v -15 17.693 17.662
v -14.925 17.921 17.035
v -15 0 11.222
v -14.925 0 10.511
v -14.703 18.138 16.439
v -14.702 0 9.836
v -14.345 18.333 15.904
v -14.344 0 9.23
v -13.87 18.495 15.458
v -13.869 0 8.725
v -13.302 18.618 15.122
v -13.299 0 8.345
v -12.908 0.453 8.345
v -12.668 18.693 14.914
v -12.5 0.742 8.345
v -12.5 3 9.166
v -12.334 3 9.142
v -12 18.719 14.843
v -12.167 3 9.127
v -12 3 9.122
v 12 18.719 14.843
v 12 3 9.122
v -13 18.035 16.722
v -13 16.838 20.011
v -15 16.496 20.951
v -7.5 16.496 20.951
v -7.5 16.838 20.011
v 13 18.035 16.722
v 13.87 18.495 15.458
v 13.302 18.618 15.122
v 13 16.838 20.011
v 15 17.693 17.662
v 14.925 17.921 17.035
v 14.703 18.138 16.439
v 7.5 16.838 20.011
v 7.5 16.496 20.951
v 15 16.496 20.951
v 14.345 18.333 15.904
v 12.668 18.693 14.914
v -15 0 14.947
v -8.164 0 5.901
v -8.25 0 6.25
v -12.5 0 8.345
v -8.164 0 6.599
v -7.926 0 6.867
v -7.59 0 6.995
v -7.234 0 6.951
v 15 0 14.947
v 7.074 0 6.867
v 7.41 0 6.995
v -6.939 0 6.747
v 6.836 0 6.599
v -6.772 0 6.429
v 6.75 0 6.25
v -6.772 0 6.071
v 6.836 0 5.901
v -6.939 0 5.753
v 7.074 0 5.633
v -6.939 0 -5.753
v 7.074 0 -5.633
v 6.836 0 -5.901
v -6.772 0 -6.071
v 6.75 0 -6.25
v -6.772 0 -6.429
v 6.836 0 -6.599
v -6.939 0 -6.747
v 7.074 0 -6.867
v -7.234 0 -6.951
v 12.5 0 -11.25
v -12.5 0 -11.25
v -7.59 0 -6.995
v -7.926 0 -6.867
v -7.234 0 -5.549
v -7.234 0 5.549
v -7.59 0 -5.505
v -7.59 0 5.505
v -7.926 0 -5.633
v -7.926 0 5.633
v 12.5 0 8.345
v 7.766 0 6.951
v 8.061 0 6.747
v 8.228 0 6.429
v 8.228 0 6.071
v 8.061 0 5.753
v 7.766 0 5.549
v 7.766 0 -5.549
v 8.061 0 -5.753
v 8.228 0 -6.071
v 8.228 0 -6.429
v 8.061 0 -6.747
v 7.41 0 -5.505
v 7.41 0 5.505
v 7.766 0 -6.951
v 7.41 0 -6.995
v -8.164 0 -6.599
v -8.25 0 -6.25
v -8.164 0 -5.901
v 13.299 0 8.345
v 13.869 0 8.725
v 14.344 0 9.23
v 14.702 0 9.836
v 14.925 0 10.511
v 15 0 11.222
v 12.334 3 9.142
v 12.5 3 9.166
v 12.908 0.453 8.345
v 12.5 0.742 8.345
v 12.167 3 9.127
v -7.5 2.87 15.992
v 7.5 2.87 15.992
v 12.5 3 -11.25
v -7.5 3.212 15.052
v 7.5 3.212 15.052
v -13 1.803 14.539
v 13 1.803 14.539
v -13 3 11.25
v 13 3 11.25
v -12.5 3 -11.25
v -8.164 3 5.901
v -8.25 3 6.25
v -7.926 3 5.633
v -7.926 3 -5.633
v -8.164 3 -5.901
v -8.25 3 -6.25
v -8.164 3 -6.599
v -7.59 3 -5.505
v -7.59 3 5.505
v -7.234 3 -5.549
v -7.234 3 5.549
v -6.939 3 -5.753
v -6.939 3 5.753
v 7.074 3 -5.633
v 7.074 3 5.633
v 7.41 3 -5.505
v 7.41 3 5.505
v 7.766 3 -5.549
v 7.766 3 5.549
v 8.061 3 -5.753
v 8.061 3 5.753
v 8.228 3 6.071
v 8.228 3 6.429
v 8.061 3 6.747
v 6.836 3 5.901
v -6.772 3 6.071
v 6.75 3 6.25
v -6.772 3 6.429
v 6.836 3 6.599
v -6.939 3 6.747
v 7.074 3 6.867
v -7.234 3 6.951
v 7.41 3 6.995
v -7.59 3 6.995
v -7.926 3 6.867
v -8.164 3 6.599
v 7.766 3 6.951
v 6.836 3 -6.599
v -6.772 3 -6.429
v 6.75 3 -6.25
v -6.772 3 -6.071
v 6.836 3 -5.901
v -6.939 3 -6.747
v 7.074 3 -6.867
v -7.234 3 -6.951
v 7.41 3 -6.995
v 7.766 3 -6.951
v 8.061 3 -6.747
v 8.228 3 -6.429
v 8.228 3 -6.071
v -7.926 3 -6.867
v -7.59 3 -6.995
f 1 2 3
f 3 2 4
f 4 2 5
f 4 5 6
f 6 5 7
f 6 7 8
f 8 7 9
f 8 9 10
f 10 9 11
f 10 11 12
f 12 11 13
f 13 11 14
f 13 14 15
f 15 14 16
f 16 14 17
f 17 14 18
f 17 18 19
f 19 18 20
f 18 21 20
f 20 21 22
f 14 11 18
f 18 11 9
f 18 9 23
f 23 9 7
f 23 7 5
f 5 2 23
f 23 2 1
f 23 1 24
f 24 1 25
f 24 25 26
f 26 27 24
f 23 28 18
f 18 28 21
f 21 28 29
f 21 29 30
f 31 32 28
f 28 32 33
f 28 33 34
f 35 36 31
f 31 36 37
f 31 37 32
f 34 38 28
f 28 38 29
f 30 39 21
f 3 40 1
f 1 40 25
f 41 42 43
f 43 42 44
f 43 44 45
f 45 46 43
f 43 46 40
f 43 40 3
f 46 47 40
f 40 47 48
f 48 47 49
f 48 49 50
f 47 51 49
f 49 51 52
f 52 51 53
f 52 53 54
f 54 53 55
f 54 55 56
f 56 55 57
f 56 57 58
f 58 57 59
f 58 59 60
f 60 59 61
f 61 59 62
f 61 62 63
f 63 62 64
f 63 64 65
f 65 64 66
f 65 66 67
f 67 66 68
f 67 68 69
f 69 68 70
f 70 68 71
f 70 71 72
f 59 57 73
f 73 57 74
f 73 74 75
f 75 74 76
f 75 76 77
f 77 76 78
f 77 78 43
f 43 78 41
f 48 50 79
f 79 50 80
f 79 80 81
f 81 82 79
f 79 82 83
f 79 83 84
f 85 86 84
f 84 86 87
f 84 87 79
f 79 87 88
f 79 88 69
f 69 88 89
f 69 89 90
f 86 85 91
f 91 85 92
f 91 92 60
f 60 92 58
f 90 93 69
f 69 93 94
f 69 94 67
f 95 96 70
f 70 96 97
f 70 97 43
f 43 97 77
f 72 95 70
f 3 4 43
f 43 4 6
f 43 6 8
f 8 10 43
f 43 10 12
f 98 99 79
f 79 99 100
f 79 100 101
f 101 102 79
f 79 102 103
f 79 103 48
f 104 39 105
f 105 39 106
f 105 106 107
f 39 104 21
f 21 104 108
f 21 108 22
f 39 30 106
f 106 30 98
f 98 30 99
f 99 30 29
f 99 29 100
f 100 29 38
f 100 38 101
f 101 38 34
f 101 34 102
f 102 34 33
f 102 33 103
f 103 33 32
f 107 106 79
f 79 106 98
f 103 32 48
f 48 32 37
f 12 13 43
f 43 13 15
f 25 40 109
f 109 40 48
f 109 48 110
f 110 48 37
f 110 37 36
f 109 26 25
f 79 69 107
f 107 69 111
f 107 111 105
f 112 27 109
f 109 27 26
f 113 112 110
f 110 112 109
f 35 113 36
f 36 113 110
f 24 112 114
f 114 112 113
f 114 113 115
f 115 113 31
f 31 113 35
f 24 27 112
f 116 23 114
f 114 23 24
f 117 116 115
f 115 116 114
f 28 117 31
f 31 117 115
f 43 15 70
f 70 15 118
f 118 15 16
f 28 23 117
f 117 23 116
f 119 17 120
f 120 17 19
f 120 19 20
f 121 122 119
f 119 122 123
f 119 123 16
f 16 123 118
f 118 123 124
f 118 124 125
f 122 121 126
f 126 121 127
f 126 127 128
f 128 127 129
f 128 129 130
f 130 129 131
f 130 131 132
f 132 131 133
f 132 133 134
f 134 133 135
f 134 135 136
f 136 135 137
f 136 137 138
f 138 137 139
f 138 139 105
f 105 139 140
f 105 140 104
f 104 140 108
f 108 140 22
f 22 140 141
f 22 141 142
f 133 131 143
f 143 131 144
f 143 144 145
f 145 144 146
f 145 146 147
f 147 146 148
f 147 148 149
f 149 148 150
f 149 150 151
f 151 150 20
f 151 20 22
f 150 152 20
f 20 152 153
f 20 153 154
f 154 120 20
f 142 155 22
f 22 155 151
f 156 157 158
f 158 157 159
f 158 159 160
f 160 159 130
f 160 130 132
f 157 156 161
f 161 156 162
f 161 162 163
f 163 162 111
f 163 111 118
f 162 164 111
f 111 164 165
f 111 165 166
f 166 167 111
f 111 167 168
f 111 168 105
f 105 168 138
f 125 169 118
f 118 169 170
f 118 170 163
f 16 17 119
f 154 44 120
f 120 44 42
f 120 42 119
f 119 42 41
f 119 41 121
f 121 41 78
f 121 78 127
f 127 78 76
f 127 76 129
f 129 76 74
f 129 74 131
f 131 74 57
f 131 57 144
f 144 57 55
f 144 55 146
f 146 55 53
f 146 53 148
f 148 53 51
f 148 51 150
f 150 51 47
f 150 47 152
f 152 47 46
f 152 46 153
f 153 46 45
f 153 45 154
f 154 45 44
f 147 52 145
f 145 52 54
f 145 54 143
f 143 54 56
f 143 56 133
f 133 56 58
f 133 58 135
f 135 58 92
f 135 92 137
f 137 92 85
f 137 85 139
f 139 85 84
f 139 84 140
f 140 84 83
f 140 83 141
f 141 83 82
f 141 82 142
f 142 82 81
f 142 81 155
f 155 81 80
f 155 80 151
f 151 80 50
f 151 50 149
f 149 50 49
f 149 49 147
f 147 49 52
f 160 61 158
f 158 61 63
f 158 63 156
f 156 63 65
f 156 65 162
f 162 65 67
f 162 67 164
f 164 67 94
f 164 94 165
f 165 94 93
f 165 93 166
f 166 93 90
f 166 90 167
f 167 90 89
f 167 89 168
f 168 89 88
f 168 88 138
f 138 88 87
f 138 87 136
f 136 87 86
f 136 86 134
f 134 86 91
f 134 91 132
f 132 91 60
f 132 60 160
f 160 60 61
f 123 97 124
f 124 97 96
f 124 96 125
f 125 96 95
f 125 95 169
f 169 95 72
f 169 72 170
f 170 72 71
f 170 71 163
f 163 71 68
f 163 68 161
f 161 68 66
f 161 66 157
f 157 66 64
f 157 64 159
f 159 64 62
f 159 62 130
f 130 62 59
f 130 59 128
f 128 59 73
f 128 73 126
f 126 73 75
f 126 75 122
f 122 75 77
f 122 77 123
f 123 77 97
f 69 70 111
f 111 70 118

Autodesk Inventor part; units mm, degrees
ref_plane "YZ Plane" through (0, 0, 0) normal (1, 0, 0) x (0, 1, 0)
ref_plane "XZ Plane" through (0, 0, 0) normal (0, 1, 0) x (-1, 0, 0)
sketch "Sketch1" plane through (0, 0, 0) normal (0, 1, 0) x (-1, 0, 0)
  line L0 (12.5, 11.25) -> (-12.5, 11.25)
  line L1 (-12.5, 11.25) -> (-12.5, -11.25)
  line L2 (-12.5, -11.25) -> (12.5, -11.25)
  line L3 (12.5, -11.25) -> (12.5, 11.25)
  line L4 (12.5, 11.25) -> (-12.5, -11.25) construction
  line L5 (-12.5, 11.25) -> (12.5, -11.25) construction
  line L6 (7.5, 6.25) -> (-7.5, 6.25) construction
  line L7 (-7.5, 6.25) -> (-7.5, -6.25) construction
  line L8 (-7.5, -6.25) -> (7.5, -6.25) construction
  line L9 (7.5, -6.25) -> (7.5, 6.25) construction
  line L10 (7.5, 6.25) -> (-7.5, -6.25) construction
  line L11 (-7.5, 6.25) -> (7.5, -6.25) construction
  circle A0 centre (7.5, -6.25) radius 0.75
  circle A1 centre (-7.5, -6.25) radius 0.75
  circle A2 centre (-7.5, 6.25) radius 0.75
  circle A3 centre (7.5, 6.25) radius 0.75
  point P0 (0, 0)
  dimension "d0" = 12.5
  dimension "d1" = 15
  dimension "d2" = 5
  dimension "d3" = 5
  dimension "d4" = 1.5
  dimension "d5" = 1.5
  dimension "d6" = 1.5
  dimension "d7" = 1.5
extrude "Extrusion1" add sketch "Sketch1" along normal blind 3
ref_plane "Work Plane1" through (-12.5, 3, 11.25) normal (0, -0.3420201, 0.9396926) x (1, 0, 0)
sketch "Sketch2" plane through (-12.5, 3, 11.25) normal (0, -0.3420201, 0.9396926) x (1, 0, 0)
  line L0 (0, -7.6955) -> (0, 0) construction
  line L1 (25, 0) -> (25, -7.6955) construction
  line L2 (0, 0) -> (25, 0) construction
  line L3 (-2.5, 16) -> (27.5, 16)
  line L4 (27.5, 16) -> (27.5, -3)
  line L5 (27.5, -3) -> (-2.5, -3)
  line L6 (-2.5, -3) -> (-2.5, 16)
  line L7 (-2.5, 16) -> (27.5, -3) construction
  line L8 (27.5, 16) -> (-2.5, -3) construction
  point P0 (12.5, -6.6668)
  point P1 (12.5, 6.5)
  point P2 (12.5, 0)
  dimension "d11" = 19
  dimension "d12" = 16
  dimension "d13" = 30
extrude "Extrusion2" add sketch "Sketch2" against normal blind 2
sketch "Sketch3" plane through (-12.5, 3, 11.25) normal (0, -0.3420201, 0.9396926) x (1, 0, 0)
  line L0 (0, 0) -> (25, 0) construction
  line L1 (-0.5, 0) -> (25.5, 0) construction
  line L2 (25.5, 0) -> (25.5, 16) construction
  line L3 (25.5, 16) -> (-0.5, 16) construction
  line L4 (-0.5, 16) -> (-0.5, 0) construction
  line L5 (-0.5, 0) -> (25.5, 16) construction
  line L6 (25.5, 0) -> (-0.5, 16) construction
  line L7 (-2.5, -3) -> (-2.5, 16) construction
  line L8 (-0.5, 16) -> (-2.5, 16)
  line L9 (-2.5, 16) -> (-2.5, 0)
  line L10 (-2.5, 0) -> (-0.5, 0)
  line L11 (-0.5, 0) -> (-0.5, 16)
  line L12 (27.5, 16) -> (27.5, -3) construction
  line L13 (25.5, 16) -> (27.5, 16)
  line L14 (27.5, 16) -> (27.5, 0)
  line L15 (27.5, 0) -> (25.5, 0)
  line L16 (25.5, 0) -> (25.5, 16)
  line L17 (-2.5, 0) -> (27.5, 0)
  line L18 (27.5, 0) -> (27.5, -2)
  line L19 (27.5, -2) -> (-2.5, -2)
  line L20 (-2.5, -2) -> (-2.5, 0)
  point P0 (12.5, -6.6668)
  point P1 (12.5, 8)
  point P2 (12.5, 0)
  point P3 (-0.5, 0)
  dimension "d16" = 16
  dimension "d17" = 26
  dimension "d18" = 2
extrude "Extrusion3" add sketch "Sketch3" along normal blind 3.5
sketch "Sketch4" plane through (-12.5, 1.8029, 14.5389) normal (0, -0.3420201, 0.9396926) x (1, 0, 0)
  line L0 (-2.5, 16) -> (-2.5, -2) projected
  line L1 (-2.5, -2) -> (27.5, -2) projected
  line L2 (27.5, -2) -> (27.5, 16) projected
  line L3 (27.5, 16) -> (25.5, 16) construction
  line L4 (-0.5, 16) -> (-2.5, 16) construction
  line L5 (-2.5, -2) -> (27.5, -2) construction
  line L6 (27.5, -2) -> (27.5, 16) construction
  line L7 (27.5, 16) -> (-2.5, 16)
  line L8 (-2.5, 16) -> (-2.5, -2) construction
  line L9 (5, 1.5) -> (20, 1.5)
  line L10 (20, 1.5) -> (20, 16)
  line L11 (20, 16) -> (5, 16)
  line L12 (5, 16) -> (5, 1.5)
  line L13 (5, 1.5) -> (20, 16) construction
  line L14 (20, 1.5) -> (5, 16) construction
  point P0 (12.5, -6.6668)
  point P1 (12.5, 8.75)
  point P2 (12.5, 16)
  point P3 (20, 16)
  dimension "d21" = 15
  dimension "d23" = 3.5
extrude "Extrusion4" add sketch "Sketch4" along normal blind 1 contours L7 L12 L9 L10 L2 L1 L0
sketch "Sketch5" plane through (12.5, 1.1206, 10.566) normal (0, -0.9396926, -0.3420201) x (1, 0, 0)
  line L0 (2.5, 0) -> (2.5, 4.5) projected
  line L1 (0, 0) -> (0, 0.7279) projected
  line L2 (2.5, 0) -> (0, 0) projected
  line L3 (-27.5, 4.5) -> (2.5, 4.5) projected
  line L4 (0, 0.7279) -> (-25, 0.7279) projected
  line L5 (-25, 0) -> (-27.5, 0) projected
  line L6 (-27.5, 0) -> (-27.5, 4.5) projected
  line L7 (-25, 0.7279) -> (-25, 0) projected
  point P0 (-12.5, -9.5455)
extrude "Extrusion5" add sketch "Sketch5" along normal blind 1
sketch "Sketch6" plane through (12.5, 0.865, 8.3446) normal (0, -0.9396926, -0.3420201) x (1, 0, 0)
  line L0 (2.5, 0) -> (0, 0) projected
  line L1 (-25, 2.7279) -> (0, 2.7279) projected
  line L2 (-25, 0) -> (-27.5, 0) projected
  line L3 (2.5, 0) -> (-27.5, 0)
  line L4 (-27.5, 0) -> (-27.5, 2.7279)
  line L5 (-27.5, 2.7279) -> (2.5, 2.7279)
  line L6 (2.5, 2.7279) -> (2.5, 0)
  point P0 (-12.5, -7.5455)
  point P1 (-25, 0)
  point P2 (0, 0)
  point P3 (0, 2.7279)
sketch3d "3D Sketch1"
  line L0 (12.5, 3, -11.25) -> (12.5, 0, -11.25)
sweep "Sweep1" add profiles "Sketch6" path "3D Sketch1"
sketch "Sketch7" plane through (12.5, 0, -11.25) normal (0, 0, -1) x (-1, 0, 0)
  line L0 (-2.5, 0) -> (27.5, 0)
  line L1 (27.5, 0) -> (27.5, -3.068)
  line L2 (27.5, -3.068) -> (-2.5, -3.068)
  line L3 (-2.5, -3.068) -> (-2.5, 0)
  line L4 (0, 0) -> (25, 0) projected
  line L5 (27.5, 0.865) -> (27.5, -2.135) projected
  line L6 (-2.5, 0.865) -> (-2.5, -2.135) projected
  line L7 (-2.5, -3.068) -> (27.5, -3.068) projected
  point P0 (12.5, 0)
extrude "Extrusion6" cut sketch "Sketch7" against normal through all
fillet "Fillet1" radius 3 2 edges at (15, 9.792, 11.5937) (-15, 9.792, 11.5937)
equation "\"d5\" = d4"
equation "\"d6\" = d4"
equation "\"d7\" = d4"
properties part number "camera-mount"
